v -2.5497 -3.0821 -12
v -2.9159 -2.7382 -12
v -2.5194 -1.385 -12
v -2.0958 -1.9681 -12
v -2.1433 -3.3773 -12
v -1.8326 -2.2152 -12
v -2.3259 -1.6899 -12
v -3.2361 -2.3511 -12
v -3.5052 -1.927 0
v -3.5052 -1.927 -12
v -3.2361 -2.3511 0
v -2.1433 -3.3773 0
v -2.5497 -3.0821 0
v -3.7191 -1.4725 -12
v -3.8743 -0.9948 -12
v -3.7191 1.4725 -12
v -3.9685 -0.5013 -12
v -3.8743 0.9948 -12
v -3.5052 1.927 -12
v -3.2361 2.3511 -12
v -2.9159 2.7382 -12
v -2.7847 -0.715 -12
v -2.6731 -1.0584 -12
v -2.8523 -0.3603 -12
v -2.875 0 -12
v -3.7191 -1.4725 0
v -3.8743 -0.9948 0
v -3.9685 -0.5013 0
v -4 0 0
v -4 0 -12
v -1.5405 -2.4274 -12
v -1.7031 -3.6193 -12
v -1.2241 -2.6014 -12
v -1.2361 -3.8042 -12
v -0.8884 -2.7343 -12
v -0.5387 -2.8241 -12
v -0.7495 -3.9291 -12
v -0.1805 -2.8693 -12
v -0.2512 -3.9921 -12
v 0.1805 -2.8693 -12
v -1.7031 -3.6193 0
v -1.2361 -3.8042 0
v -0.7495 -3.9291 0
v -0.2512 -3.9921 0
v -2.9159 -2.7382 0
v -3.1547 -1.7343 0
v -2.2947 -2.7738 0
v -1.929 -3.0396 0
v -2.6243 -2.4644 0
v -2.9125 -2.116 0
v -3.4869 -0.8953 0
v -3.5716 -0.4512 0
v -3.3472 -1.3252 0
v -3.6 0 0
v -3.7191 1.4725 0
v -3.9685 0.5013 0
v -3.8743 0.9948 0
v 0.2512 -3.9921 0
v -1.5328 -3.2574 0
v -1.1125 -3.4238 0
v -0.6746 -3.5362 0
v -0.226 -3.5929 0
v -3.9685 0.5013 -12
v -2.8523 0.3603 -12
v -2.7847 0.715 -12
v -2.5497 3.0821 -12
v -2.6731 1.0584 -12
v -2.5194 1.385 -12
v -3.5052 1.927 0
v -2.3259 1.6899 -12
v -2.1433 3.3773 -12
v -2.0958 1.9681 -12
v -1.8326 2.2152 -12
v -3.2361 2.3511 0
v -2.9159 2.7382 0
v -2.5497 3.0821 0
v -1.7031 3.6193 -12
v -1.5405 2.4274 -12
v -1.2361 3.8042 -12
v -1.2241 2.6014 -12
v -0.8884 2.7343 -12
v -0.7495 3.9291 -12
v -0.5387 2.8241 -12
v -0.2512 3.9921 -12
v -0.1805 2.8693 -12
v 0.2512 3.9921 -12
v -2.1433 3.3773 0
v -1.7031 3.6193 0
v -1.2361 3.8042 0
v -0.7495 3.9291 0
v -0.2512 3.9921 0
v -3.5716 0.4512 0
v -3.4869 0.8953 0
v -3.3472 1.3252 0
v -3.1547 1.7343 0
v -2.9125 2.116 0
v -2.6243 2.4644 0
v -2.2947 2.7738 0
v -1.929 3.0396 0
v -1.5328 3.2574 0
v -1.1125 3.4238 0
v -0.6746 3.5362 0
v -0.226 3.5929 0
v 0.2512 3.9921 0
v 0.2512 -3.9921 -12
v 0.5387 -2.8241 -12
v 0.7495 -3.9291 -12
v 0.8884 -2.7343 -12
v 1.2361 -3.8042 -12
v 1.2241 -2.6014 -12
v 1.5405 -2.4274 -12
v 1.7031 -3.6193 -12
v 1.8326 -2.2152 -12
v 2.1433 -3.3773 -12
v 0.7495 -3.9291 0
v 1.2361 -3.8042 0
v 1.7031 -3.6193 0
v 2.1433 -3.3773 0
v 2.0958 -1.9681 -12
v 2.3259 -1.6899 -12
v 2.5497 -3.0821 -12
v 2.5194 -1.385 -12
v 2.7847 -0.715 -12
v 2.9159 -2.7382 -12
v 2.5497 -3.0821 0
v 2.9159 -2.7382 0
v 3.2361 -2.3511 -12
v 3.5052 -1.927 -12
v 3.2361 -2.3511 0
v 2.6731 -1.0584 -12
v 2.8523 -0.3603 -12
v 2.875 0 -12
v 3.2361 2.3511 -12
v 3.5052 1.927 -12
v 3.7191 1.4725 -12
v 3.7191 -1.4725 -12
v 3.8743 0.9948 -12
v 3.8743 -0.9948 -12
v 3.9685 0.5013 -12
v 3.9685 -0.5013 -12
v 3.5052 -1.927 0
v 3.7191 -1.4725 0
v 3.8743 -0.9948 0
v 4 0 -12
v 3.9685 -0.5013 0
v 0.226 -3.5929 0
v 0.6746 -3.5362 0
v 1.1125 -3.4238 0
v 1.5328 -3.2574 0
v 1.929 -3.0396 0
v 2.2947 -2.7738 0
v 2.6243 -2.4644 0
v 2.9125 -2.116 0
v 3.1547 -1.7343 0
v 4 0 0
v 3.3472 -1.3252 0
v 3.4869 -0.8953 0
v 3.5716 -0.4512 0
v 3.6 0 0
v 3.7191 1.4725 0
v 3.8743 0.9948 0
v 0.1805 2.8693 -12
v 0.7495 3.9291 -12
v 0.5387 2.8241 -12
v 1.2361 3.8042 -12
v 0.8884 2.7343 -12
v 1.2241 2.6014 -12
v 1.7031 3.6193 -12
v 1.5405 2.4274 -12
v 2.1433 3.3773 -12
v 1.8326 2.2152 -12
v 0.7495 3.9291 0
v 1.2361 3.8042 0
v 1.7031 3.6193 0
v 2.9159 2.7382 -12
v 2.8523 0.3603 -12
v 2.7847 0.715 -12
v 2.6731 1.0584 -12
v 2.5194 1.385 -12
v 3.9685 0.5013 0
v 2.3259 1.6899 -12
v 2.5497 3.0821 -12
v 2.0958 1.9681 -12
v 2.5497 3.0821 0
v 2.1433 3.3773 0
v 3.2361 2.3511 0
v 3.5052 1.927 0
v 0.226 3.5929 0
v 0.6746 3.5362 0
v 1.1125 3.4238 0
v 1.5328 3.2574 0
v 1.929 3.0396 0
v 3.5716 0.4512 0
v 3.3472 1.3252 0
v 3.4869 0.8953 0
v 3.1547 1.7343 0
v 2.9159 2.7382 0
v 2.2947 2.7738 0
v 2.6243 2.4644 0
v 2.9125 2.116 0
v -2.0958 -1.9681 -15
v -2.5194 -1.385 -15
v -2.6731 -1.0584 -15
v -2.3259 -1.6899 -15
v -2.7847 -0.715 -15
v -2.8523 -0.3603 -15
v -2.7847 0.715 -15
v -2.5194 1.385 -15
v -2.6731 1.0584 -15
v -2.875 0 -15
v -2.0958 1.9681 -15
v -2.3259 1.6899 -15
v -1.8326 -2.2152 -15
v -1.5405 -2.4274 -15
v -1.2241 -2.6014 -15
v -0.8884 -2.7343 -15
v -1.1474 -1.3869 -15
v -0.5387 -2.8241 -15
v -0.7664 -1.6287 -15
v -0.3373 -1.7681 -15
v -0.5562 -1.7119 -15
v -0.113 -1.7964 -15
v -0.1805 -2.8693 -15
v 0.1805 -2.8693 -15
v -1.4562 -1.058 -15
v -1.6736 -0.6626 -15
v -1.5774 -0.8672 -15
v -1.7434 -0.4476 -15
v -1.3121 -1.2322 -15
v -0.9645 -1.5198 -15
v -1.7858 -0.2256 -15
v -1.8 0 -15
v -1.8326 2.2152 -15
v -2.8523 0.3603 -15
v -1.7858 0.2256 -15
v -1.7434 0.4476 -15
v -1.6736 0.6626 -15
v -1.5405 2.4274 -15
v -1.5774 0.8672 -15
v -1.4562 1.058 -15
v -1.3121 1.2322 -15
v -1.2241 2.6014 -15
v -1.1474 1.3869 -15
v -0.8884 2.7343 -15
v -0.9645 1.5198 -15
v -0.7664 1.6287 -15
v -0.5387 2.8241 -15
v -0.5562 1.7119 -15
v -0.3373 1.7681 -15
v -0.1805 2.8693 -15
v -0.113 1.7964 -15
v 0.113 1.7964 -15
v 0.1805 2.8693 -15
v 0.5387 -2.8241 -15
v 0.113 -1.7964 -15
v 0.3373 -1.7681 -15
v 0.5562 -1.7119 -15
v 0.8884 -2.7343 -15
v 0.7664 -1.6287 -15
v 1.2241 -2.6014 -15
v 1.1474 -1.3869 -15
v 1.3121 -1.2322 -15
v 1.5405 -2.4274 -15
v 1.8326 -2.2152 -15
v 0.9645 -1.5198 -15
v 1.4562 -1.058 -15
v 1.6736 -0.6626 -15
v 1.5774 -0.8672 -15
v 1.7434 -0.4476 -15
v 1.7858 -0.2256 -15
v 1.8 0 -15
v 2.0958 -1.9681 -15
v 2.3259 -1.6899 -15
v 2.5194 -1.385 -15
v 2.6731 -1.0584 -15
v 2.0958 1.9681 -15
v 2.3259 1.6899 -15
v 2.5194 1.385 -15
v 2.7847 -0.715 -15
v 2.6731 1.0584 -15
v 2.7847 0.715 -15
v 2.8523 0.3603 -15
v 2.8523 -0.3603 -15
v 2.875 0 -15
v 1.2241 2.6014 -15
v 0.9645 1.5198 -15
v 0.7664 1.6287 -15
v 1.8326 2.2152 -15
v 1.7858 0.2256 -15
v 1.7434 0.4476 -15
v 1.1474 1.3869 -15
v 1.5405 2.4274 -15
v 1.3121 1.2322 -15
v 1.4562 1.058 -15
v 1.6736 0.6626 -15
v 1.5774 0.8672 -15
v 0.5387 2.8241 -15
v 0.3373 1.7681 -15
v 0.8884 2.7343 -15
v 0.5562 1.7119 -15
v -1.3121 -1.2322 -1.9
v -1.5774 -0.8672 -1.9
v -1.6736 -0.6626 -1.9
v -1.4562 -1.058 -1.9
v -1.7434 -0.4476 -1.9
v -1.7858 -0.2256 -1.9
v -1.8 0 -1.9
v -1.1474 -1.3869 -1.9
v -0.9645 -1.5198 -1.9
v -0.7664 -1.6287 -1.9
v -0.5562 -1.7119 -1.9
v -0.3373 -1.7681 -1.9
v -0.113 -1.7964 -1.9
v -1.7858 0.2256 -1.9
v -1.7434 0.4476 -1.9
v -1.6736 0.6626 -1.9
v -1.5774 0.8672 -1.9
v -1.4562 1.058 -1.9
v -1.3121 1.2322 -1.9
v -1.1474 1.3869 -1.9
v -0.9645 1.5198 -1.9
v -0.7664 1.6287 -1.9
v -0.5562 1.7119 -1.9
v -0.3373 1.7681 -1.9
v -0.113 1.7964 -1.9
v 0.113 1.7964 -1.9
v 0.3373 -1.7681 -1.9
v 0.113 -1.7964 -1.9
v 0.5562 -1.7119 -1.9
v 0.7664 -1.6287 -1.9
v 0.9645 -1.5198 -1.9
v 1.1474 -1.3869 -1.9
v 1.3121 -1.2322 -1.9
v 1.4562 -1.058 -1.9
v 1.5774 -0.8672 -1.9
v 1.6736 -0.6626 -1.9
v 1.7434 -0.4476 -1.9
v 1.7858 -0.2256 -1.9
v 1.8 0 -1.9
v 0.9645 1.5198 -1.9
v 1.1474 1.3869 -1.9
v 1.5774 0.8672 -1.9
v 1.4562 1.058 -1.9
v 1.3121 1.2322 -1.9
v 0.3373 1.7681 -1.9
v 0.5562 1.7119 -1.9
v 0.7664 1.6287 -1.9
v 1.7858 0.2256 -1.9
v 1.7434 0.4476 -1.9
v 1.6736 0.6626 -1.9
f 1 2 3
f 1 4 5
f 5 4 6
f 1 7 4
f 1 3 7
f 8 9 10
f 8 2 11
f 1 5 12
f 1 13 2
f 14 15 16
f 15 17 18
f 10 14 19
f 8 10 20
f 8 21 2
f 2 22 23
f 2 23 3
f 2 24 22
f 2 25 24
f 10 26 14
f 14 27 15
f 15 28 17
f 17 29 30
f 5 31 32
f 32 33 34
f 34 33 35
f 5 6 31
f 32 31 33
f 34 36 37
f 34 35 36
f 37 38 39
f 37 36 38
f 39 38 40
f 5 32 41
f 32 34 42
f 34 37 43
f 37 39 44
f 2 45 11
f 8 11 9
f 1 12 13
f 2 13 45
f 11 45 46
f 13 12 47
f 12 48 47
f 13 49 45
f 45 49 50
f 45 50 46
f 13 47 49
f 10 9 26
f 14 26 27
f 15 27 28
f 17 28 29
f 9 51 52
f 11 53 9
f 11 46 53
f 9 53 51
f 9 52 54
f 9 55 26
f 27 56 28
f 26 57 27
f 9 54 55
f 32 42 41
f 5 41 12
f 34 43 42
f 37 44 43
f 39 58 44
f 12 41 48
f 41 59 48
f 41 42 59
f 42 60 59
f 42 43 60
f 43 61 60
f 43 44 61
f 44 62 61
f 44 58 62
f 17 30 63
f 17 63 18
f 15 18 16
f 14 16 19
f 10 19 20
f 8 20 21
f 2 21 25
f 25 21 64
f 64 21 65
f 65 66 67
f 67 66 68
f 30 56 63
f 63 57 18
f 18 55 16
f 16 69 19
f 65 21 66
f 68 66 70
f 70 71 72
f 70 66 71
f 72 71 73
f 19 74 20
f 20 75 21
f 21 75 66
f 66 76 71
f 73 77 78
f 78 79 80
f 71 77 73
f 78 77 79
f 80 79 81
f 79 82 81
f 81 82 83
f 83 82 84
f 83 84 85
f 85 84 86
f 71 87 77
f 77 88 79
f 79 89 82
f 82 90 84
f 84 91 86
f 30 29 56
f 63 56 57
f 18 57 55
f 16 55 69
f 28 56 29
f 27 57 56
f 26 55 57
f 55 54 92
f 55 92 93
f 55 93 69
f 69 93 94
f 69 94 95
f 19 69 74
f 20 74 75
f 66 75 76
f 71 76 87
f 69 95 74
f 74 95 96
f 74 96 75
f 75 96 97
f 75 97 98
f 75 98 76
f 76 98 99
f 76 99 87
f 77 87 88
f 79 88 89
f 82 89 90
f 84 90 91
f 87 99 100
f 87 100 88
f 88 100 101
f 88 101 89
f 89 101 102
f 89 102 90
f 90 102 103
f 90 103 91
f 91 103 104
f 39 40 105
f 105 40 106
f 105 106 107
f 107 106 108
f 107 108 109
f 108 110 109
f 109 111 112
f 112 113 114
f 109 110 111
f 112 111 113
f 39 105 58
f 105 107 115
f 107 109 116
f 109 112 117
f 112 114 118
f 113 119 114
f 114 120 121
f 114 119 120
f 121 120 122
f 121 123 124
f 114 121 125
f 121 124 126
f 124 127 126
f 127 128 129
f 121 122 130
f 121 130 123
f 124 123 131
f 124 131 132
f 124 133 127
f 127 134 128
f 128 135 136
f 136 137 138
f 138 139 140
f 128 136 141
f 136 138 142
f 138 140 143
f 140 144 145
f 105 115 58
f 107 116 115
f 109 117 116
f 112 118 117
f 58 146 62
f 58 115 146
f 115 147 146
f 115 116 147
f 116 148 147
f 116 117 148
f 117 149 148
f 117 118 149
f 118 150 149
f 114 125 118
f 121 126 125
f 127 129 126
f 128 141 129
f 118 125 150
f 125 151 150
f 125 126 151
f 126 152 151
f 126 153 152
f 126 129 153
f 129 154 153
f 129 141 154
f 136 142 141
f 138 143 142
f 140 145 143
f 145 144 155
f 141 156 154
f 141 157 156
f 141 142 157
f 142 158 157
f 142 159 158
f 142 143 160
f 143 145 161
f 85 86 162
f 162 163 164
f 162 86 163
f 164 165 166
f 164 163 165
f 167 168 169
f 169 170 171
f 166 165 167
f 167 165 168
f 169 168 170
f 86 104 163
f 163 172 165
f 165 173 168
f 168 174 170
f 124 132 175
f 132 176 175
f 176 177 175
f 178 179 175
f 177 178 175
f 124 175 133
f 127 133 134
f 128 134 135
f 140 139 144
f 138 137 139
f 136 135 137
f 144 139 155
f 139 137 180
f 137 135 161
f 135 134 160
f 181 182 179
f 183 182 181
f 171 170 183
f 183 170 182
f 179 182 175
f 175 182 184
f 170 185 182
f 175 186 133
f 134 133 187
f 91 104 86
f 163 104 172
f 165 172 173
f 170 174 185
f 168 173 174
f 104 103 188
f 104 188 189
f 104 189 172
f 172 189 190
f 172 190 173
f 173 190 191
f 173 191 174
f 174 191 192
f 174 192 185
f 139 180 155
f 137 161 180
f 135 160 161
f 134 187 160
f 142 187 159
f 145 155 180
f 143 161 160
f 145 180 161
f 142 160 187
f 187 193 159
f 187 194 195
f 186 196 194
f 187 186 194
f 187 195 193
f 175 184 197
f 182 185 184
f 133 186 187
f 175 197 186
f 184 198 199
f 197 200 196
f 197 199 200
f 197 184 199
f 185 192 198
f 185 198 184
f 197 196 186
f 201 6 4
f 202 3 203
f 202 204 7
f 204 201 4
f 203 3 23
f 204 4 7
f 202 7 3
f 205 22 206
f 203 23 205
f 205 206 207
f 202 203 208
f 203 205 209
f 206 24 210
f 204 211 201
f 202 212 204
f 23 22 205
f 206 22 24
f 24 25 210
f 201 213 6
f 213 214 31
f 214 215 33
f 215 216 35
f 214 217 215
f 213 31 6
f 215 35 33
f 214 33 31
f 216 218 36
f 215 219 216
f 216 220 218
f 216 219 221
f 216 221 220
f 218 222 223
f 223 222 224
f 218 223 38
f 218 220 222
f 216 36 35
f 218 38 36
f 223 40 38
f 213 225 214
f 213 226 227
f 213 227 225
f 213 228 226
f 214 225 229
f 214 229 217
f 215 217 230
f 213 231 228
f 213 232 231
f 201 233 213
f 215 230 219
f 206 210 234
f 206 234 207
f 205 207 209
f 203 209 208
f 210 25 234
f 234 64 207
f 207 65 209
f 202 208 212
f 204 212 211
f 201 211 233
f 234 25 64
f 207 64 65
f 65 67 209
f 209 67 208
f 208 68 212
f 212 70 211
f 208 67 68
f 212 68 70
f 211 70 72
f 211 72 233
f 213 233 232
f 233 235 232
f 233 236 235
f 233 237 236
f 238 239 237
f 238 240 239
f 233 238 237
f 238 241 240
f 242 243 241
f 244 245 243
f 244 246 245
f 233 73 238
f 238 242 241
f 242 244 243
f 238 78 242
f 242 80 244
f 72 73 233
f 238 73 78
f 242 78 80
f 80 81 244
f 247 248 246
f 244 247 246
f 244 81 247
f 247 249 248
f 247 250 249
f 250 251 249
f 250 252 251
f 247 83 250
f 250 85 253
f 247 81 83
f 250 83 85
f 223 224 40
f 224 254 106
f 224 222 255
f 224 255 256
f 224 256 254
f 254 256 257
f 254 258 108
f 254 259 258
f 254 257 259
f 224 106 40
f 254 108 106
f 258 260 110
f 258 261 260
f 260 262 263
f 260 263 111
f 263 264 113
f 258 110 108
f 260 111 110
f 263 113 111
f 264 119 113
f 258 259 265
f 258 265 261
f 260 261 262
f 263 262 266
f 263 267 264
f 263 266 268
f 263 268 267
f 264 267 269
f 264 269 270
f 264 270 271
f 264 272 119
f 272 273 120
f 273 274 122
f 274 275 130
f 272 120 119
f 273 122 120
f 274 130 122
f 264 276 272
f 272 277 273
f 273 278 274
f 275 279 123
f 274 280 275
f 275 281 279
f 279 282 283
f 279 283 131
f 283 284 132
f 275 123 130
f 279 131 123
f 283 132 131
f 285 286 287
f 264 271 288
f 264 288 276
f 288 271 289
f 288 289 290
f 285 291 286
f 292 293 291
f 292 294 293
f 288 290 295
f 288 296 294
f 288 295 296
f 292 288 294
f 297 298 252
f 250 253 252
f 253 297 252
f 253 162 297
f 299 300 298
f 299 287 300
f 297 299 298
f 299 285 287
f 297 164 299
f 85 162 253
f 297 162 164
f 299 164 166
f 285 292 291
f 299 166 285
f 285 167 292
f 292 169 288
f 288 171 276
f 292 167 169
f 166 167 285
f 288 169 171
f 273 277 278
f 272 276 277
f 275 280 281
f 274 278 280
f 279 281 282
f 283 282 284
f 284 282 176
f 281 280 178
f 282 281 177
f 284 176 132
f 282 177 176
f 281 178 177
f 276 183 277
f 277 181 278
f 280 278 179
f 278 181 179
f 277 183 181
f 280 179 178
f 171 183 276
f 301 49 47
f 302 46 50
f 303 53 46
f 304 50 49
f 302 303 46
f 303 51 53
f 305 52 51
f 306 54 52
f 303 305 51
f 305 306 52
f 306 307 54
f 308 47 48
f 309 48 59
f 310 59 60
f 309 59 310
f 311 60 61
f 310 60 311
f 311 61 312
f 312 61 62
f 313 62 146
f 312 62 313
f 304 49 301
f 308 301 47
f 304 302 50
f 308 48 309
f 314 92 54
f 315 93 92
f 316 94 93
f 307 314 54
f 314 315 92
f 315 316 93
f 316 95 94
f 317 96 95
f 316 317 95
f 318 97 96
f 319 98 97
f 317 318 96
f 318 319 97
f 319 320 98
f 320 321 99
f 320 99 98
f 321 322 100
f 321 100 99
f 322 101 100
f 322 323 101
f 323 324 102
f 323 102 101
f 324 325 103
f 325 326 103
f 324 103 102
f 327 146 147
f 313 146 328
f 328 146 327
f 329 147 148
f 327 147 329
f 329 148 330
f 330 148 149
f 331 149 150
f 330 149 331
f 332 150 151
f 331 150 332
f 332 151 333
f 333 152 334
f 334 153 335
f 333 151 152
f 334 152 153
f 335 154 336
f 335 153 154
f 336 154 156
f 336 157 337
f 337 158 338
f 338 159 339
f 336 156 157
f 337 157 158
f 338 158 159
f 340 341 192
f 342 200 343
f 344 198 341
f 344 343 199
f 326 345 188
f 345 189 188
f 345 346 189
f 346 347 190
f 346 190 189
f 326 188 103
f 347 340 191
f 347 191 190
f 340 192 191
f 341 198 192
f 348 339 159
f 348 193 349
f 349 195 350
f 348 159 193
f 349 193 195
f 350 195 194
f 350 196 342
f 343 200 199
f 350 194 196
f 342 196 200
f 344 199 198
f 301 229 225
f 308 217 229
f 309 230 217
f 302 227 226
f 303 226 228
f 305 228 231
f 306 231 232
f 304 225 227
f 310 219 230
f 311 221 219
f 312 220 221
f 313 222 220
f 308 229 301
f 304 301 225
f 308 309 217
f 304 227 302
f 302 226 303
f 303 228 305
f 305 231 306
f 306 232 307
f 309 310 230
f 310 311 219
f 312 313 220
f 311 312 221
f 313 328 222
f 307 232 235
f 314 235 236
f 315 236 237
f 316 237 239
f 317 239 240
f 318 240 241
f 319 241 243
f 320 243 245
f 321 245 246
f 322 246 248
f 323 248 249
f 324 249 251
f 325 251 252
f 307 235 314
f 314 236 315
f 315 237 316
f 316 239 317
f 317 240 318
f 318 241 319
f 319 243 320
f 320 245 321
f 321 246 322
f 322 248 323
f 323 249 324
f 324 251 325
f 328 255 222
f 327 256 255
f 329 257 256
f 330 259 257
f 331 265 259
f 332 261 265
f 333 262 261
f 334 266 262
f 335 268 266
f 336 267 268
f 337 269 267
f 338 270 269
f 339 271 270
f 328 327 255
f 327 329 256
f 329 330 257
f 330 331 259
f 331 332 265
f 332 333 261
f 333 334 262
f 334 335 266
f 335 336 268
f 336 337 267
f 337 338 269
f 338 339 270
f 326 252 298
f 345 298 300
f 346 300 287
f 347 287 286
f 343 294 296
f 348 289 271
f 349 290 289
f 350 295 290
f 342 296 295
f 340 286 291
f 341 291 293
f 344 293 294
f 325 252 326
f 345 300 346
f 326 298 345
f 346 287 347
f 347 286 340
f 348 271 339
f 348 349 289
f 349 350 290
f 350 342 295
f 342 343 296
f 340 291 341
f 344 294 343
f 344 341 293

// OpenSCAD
$fn = 50;

difference() {
	union() {
		translate(v = [0, 0, -12.0]) {
			cylinder(h = 12, r = 4.0);
		}
		#translate(v = [0, 0, -15.0]) {
			cylinder(h = 15, r = 2.875);
		}
	}
	union() {
		translate(v = [0, 0, 0]) {
			rotate(a = [0, 0, 0]) {
				difference() {
					union() {
						translate(v = [0, 0, -15.0]) {
							cylinder(h = 15, r = 1.5);
						}
						translate(v = [0, 0, -1.9]) {
							cylinder(h = 1.9, r1 = 1.8, r2 = 3.6);
						}
						translate(v = [0, 0, -15.0]) {
							cylinder(h = 15, r = 1.8);
						}
						translate(v = [0, 0, -15.0]) {
							cylinder(h = 15, r = 1.5);
						}
					}
					union();
				}
			}
		}
	}
}
